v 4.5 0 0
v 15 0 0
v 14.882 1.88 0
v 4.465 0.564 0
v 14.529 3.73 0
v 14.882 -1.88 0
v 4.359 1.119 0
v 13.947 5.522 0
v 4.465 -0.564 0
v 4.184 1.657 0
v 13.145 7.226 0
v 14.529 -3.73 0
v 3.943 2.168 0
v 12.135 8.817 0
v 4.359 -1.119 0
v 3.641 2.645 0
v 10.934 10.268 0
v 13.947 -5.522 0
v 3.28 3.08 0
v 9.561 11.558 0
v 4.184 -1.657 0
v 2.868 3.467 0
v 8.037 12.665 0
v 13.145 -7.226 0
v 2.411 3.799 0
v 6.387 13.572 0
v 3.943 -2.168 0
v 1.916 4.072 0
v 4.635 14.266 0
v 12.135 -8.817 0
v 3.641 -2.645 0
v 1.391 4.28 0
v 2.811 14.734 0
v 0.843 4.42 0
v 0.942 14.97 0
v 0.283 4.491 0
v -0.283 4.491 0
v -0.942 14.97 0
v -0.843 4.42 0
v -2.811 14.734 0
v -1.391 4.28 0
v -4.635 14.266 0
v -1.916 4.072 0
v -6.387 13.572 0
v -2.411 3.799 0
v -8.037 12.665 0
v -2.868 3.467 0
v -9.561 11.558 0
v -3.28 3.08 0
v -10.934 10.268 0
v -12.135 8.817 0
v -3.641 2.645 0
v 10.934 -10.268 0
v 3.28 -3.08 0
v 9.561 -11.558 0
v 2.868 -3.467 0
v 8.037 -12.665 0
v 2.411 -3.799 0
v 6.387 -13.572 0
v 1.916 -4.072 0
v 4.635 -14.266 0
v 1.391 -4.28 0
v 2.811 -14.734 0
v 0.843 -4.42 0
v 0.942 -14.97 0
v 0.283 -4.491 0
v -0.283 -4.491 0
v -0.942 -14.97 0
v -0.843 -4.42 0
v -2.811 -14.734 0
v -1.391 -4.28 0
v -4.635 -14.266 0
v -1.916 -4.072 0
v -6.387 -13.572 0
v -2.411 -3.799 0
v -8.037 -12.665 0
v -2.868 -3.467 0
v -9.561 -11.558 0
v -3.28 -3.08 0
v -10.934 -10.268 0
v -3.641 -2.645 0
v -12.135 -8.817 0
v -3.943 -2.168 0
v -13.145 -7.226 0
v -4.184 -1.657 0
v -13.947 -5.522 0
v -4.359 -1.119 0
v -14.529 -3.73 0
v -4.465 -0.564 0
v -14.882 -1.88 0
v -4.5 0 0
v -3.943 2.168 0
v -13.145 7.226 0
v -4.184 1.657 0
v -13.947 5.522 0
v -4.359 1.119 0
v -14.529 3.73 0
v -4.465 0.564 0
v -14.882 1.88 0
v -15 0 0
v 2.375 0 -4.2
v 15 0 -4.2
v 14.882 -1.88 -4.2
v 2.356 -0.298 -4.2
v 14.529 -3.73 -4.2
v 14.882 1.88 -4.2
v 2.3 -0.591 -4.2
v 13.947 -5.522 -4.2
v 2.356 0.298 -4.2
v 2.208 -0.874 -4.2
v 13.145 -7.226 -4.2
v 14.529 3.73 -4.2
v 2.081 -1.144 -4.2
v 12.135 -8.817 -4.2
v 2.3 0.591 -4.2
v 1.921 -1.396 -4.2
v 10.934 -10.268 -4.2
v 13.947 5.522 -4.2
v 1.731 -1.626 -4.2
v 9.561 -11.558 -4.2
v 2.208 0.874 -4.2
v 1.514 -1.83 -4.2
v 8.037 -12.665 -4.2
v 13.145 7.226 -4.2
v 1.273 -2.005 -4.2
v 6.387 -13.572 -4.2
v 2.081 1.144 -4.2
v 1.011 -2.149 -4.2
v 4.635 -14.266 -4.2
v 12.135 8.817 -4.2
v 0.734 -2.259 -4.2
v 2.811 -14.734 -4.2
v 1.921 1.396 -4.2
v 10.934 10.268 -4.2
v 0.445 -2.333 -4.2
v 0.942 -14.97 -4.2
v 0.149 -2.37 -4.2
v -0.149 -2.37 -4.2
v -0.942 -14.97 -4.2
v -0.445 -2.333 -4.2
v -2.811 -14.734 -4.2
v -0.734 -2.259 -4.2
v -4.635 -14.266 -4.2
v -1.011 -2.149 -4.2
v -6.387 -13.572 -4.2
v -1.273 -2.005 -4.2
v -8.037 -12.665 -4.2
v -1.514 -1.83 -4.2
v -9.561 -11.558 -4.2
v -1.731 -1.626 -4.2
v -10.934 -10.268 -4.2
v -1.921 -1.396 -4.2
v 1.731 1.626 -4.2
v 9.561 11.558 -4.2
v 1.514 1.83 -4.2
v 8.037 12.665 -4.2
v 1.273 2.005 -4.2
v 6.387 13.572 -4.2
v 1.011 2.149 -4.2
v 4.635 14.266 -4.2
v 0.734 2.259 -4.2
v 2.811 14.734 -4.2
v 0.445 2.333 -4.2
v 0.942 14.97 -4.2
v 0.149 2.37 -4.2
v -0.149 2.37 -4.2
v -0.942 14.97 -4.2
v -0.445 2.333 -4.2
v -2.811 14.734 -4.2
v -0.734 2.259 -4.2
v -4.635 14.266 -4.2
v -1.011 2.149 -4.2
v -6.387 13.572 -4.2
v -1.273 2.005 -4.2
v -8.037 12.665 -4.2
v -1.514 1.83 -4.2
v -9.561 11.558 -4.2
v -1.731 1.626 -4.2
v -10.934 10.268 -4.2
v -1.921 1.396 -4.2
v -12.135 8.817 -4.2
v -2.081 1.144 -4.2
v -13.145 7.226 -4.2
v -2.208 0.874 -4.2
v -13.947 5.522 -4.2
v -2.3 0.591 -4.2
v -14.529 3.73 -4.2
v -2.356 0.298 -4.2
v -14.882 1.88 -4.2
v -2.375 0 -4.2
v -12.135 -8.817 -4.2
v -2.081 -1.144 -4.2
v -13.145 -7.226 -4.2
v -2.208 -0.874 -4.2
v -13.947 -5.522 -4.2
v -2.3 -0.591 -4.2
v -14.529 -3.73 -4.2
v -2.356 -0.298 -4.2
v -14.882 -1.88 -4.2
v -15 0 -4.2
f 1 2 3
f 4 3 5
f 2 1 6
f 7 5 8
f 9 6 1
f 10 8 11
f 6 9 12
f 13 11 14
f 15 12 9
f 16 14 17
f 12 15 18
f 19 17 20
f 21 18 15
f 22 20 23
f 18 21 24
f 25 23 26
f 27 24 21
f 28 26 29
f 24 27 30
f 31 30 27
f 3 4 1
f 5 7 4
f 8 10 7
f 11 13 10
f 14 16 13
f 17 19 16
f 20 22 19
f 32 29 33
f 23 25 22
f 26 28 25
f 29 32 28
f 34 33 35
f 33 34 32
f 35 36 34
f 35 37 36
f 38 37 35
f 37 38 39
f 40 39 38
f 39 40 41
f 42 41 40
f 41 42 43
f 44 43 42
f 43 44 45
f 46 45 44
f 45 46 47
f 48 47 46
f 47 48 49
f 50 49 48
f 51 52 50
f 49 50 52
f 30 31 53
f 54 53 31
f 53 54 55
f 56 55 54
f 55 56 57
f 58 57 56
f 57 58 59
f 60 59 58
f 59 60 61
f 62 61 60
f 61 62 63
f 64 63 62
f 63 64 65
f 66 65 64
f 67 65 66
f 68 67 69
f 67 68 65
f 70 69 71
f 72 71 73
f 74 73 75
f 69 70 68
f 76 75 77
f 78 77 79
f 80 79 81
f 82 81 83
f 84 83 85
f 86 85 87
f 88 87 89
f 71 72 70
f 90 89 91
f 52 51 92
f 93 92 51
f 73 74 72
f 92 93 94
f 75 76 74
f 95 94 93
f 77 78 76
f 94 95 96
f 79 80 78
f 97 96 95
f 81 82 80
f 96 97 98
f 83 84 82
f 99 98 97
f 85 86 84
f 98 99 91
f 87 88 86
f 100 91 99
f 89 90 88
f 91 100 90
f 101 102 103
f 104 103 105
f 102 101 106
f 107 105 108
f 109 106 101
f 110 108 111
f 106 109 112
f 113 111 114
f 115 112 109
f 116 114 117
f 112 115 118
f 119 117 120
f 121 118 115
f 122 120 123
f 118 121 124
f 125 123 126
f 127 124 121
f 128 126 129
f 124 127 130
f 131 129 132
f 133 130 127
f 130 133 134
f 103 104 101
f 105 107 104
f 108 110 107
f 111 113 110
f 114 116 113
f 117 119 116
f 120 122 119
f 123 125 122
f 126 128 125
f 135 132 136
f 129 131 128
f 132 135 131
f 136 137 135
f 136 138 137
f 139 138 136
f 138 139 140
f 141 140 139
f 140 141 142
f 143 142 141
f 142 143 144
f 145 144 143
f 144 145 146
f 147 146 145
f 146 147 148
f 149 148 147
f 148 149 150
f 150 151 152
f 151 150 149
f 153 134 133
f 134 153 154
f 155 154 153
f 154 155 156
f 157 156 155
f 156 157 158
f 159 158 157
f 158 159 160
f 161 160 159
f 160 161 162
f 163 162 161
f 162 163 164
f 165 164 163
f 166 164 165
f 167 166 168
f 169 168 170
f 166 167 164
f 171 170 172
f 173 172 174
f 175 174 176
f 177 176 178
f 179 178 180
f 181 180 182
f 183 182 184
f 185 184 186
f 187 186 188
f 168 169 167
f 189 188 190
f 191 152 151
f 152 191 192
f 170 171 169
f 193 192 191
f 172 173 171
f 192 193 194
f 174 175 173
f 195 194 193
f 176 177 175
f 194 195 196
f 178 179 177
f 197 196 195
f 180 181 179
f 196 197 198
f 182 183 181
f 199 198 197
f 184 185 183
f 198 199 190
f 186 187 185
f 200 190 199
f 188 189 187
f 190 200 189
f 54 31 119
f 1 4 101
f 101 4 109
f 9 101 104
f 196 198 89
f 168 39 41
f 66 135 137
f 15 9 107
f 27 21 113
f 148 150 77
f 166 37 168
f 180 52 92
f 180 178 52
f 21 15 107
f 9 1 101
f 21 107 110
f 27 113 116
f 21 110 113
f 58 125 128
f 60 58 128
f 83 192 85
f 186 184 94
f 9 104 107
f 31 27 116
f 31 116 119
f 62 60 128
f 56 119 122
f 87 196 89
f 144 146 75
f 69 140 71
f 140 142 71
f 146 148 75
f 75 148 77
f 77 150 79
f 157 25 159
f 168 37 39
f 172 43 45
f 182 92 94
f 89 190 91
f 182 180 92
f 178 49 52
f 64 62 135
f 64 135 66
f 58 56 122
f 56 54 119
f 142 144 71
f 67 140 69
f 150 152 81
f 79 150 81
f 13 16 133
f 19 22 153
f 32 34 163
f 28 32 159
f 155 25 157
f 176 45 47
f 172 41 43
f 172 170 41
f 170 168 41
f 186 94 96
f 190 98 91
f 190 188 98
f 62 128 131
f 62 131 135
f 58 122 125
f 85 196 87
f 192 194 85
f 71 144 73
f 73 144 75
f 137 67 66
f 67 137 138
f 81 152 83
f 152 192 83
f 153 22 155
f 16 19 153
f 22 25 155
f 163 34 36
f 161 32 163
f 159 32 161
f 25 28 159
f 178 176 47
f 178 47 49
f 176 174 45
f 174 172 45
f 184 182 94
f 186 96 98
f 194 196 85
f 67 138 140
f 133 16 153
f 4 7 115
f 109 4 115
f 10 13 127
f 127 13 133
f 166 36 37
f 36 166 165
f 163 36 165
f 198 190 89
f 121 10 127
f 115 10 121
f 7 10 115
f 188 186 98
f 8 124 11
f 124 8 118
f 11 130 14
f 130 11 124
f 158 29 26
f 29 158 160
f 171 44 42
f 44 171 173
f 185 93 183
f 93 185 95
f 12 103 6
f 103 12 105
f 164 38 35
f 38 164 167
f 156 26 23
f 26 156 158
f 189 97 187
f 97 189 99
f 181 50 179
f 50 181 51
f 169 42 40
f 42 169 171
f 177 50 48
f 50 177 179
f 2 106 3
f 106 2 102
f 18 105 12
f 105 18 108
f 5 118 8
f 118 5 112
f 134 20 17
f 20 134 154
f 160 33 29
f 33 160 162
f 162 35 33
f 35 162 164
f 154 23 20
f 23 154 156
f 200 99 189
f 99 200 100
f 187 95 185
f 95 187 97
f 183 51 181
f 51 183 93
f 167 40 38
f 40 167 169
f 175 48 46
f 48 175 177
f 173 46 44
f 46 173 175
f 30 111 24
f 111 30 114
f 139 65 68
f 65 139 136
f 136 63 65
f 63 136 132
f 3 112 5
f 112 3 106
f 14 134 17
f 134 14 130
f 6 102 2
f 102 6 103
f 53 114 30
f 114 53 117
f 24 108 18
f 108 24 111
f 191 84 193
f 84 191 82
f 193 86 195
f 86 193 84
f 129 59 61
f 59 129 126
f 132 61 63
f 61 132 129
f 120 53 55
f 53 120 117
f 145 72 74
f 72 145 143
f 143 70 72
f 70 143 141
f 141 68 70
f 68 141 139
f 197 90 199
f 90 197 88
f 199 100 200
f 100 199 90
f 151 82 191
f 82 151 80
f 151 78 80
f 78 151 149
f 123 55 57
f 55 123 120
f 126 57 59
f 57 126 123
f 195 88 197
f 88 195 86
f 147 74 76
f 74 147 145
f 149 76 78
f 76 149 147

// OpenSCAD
$fn = 50;


difference() {
	union() {
		translate(v = [0, 0, -4.2000000000]) {
			cylinder(h = 4.2000000000, r = 15.0000000000);
		}
	}
	union() {
		translate(v = [0, 0, 0]) {
			rotate(a = [0, 0, 0]) {
				difference() {
					union() {
						#translate(v = [0, 0, -4.2000000000]) {
							cylinder(h = 4.2000000000, r = 2.2500000000);
						}
						#translate(v = [0, 0, -4.2000000000]) {
							cylinder(h = 4.2000000000, r1 = 2.3750000000, r2 = 4.5000000000);
						}
						#translate(v = [0, 0, -4.2000000000]) {
							cylinder(h = 4.2000000000, r = 2.3750000000);
						}
						#translate(v = [0, 0, -4.2000000000]) {
							cylinder(h = 4.2000000000, r = 2.2500000000);
						}
					}
					union();
				}
			}
		}
	}
}
